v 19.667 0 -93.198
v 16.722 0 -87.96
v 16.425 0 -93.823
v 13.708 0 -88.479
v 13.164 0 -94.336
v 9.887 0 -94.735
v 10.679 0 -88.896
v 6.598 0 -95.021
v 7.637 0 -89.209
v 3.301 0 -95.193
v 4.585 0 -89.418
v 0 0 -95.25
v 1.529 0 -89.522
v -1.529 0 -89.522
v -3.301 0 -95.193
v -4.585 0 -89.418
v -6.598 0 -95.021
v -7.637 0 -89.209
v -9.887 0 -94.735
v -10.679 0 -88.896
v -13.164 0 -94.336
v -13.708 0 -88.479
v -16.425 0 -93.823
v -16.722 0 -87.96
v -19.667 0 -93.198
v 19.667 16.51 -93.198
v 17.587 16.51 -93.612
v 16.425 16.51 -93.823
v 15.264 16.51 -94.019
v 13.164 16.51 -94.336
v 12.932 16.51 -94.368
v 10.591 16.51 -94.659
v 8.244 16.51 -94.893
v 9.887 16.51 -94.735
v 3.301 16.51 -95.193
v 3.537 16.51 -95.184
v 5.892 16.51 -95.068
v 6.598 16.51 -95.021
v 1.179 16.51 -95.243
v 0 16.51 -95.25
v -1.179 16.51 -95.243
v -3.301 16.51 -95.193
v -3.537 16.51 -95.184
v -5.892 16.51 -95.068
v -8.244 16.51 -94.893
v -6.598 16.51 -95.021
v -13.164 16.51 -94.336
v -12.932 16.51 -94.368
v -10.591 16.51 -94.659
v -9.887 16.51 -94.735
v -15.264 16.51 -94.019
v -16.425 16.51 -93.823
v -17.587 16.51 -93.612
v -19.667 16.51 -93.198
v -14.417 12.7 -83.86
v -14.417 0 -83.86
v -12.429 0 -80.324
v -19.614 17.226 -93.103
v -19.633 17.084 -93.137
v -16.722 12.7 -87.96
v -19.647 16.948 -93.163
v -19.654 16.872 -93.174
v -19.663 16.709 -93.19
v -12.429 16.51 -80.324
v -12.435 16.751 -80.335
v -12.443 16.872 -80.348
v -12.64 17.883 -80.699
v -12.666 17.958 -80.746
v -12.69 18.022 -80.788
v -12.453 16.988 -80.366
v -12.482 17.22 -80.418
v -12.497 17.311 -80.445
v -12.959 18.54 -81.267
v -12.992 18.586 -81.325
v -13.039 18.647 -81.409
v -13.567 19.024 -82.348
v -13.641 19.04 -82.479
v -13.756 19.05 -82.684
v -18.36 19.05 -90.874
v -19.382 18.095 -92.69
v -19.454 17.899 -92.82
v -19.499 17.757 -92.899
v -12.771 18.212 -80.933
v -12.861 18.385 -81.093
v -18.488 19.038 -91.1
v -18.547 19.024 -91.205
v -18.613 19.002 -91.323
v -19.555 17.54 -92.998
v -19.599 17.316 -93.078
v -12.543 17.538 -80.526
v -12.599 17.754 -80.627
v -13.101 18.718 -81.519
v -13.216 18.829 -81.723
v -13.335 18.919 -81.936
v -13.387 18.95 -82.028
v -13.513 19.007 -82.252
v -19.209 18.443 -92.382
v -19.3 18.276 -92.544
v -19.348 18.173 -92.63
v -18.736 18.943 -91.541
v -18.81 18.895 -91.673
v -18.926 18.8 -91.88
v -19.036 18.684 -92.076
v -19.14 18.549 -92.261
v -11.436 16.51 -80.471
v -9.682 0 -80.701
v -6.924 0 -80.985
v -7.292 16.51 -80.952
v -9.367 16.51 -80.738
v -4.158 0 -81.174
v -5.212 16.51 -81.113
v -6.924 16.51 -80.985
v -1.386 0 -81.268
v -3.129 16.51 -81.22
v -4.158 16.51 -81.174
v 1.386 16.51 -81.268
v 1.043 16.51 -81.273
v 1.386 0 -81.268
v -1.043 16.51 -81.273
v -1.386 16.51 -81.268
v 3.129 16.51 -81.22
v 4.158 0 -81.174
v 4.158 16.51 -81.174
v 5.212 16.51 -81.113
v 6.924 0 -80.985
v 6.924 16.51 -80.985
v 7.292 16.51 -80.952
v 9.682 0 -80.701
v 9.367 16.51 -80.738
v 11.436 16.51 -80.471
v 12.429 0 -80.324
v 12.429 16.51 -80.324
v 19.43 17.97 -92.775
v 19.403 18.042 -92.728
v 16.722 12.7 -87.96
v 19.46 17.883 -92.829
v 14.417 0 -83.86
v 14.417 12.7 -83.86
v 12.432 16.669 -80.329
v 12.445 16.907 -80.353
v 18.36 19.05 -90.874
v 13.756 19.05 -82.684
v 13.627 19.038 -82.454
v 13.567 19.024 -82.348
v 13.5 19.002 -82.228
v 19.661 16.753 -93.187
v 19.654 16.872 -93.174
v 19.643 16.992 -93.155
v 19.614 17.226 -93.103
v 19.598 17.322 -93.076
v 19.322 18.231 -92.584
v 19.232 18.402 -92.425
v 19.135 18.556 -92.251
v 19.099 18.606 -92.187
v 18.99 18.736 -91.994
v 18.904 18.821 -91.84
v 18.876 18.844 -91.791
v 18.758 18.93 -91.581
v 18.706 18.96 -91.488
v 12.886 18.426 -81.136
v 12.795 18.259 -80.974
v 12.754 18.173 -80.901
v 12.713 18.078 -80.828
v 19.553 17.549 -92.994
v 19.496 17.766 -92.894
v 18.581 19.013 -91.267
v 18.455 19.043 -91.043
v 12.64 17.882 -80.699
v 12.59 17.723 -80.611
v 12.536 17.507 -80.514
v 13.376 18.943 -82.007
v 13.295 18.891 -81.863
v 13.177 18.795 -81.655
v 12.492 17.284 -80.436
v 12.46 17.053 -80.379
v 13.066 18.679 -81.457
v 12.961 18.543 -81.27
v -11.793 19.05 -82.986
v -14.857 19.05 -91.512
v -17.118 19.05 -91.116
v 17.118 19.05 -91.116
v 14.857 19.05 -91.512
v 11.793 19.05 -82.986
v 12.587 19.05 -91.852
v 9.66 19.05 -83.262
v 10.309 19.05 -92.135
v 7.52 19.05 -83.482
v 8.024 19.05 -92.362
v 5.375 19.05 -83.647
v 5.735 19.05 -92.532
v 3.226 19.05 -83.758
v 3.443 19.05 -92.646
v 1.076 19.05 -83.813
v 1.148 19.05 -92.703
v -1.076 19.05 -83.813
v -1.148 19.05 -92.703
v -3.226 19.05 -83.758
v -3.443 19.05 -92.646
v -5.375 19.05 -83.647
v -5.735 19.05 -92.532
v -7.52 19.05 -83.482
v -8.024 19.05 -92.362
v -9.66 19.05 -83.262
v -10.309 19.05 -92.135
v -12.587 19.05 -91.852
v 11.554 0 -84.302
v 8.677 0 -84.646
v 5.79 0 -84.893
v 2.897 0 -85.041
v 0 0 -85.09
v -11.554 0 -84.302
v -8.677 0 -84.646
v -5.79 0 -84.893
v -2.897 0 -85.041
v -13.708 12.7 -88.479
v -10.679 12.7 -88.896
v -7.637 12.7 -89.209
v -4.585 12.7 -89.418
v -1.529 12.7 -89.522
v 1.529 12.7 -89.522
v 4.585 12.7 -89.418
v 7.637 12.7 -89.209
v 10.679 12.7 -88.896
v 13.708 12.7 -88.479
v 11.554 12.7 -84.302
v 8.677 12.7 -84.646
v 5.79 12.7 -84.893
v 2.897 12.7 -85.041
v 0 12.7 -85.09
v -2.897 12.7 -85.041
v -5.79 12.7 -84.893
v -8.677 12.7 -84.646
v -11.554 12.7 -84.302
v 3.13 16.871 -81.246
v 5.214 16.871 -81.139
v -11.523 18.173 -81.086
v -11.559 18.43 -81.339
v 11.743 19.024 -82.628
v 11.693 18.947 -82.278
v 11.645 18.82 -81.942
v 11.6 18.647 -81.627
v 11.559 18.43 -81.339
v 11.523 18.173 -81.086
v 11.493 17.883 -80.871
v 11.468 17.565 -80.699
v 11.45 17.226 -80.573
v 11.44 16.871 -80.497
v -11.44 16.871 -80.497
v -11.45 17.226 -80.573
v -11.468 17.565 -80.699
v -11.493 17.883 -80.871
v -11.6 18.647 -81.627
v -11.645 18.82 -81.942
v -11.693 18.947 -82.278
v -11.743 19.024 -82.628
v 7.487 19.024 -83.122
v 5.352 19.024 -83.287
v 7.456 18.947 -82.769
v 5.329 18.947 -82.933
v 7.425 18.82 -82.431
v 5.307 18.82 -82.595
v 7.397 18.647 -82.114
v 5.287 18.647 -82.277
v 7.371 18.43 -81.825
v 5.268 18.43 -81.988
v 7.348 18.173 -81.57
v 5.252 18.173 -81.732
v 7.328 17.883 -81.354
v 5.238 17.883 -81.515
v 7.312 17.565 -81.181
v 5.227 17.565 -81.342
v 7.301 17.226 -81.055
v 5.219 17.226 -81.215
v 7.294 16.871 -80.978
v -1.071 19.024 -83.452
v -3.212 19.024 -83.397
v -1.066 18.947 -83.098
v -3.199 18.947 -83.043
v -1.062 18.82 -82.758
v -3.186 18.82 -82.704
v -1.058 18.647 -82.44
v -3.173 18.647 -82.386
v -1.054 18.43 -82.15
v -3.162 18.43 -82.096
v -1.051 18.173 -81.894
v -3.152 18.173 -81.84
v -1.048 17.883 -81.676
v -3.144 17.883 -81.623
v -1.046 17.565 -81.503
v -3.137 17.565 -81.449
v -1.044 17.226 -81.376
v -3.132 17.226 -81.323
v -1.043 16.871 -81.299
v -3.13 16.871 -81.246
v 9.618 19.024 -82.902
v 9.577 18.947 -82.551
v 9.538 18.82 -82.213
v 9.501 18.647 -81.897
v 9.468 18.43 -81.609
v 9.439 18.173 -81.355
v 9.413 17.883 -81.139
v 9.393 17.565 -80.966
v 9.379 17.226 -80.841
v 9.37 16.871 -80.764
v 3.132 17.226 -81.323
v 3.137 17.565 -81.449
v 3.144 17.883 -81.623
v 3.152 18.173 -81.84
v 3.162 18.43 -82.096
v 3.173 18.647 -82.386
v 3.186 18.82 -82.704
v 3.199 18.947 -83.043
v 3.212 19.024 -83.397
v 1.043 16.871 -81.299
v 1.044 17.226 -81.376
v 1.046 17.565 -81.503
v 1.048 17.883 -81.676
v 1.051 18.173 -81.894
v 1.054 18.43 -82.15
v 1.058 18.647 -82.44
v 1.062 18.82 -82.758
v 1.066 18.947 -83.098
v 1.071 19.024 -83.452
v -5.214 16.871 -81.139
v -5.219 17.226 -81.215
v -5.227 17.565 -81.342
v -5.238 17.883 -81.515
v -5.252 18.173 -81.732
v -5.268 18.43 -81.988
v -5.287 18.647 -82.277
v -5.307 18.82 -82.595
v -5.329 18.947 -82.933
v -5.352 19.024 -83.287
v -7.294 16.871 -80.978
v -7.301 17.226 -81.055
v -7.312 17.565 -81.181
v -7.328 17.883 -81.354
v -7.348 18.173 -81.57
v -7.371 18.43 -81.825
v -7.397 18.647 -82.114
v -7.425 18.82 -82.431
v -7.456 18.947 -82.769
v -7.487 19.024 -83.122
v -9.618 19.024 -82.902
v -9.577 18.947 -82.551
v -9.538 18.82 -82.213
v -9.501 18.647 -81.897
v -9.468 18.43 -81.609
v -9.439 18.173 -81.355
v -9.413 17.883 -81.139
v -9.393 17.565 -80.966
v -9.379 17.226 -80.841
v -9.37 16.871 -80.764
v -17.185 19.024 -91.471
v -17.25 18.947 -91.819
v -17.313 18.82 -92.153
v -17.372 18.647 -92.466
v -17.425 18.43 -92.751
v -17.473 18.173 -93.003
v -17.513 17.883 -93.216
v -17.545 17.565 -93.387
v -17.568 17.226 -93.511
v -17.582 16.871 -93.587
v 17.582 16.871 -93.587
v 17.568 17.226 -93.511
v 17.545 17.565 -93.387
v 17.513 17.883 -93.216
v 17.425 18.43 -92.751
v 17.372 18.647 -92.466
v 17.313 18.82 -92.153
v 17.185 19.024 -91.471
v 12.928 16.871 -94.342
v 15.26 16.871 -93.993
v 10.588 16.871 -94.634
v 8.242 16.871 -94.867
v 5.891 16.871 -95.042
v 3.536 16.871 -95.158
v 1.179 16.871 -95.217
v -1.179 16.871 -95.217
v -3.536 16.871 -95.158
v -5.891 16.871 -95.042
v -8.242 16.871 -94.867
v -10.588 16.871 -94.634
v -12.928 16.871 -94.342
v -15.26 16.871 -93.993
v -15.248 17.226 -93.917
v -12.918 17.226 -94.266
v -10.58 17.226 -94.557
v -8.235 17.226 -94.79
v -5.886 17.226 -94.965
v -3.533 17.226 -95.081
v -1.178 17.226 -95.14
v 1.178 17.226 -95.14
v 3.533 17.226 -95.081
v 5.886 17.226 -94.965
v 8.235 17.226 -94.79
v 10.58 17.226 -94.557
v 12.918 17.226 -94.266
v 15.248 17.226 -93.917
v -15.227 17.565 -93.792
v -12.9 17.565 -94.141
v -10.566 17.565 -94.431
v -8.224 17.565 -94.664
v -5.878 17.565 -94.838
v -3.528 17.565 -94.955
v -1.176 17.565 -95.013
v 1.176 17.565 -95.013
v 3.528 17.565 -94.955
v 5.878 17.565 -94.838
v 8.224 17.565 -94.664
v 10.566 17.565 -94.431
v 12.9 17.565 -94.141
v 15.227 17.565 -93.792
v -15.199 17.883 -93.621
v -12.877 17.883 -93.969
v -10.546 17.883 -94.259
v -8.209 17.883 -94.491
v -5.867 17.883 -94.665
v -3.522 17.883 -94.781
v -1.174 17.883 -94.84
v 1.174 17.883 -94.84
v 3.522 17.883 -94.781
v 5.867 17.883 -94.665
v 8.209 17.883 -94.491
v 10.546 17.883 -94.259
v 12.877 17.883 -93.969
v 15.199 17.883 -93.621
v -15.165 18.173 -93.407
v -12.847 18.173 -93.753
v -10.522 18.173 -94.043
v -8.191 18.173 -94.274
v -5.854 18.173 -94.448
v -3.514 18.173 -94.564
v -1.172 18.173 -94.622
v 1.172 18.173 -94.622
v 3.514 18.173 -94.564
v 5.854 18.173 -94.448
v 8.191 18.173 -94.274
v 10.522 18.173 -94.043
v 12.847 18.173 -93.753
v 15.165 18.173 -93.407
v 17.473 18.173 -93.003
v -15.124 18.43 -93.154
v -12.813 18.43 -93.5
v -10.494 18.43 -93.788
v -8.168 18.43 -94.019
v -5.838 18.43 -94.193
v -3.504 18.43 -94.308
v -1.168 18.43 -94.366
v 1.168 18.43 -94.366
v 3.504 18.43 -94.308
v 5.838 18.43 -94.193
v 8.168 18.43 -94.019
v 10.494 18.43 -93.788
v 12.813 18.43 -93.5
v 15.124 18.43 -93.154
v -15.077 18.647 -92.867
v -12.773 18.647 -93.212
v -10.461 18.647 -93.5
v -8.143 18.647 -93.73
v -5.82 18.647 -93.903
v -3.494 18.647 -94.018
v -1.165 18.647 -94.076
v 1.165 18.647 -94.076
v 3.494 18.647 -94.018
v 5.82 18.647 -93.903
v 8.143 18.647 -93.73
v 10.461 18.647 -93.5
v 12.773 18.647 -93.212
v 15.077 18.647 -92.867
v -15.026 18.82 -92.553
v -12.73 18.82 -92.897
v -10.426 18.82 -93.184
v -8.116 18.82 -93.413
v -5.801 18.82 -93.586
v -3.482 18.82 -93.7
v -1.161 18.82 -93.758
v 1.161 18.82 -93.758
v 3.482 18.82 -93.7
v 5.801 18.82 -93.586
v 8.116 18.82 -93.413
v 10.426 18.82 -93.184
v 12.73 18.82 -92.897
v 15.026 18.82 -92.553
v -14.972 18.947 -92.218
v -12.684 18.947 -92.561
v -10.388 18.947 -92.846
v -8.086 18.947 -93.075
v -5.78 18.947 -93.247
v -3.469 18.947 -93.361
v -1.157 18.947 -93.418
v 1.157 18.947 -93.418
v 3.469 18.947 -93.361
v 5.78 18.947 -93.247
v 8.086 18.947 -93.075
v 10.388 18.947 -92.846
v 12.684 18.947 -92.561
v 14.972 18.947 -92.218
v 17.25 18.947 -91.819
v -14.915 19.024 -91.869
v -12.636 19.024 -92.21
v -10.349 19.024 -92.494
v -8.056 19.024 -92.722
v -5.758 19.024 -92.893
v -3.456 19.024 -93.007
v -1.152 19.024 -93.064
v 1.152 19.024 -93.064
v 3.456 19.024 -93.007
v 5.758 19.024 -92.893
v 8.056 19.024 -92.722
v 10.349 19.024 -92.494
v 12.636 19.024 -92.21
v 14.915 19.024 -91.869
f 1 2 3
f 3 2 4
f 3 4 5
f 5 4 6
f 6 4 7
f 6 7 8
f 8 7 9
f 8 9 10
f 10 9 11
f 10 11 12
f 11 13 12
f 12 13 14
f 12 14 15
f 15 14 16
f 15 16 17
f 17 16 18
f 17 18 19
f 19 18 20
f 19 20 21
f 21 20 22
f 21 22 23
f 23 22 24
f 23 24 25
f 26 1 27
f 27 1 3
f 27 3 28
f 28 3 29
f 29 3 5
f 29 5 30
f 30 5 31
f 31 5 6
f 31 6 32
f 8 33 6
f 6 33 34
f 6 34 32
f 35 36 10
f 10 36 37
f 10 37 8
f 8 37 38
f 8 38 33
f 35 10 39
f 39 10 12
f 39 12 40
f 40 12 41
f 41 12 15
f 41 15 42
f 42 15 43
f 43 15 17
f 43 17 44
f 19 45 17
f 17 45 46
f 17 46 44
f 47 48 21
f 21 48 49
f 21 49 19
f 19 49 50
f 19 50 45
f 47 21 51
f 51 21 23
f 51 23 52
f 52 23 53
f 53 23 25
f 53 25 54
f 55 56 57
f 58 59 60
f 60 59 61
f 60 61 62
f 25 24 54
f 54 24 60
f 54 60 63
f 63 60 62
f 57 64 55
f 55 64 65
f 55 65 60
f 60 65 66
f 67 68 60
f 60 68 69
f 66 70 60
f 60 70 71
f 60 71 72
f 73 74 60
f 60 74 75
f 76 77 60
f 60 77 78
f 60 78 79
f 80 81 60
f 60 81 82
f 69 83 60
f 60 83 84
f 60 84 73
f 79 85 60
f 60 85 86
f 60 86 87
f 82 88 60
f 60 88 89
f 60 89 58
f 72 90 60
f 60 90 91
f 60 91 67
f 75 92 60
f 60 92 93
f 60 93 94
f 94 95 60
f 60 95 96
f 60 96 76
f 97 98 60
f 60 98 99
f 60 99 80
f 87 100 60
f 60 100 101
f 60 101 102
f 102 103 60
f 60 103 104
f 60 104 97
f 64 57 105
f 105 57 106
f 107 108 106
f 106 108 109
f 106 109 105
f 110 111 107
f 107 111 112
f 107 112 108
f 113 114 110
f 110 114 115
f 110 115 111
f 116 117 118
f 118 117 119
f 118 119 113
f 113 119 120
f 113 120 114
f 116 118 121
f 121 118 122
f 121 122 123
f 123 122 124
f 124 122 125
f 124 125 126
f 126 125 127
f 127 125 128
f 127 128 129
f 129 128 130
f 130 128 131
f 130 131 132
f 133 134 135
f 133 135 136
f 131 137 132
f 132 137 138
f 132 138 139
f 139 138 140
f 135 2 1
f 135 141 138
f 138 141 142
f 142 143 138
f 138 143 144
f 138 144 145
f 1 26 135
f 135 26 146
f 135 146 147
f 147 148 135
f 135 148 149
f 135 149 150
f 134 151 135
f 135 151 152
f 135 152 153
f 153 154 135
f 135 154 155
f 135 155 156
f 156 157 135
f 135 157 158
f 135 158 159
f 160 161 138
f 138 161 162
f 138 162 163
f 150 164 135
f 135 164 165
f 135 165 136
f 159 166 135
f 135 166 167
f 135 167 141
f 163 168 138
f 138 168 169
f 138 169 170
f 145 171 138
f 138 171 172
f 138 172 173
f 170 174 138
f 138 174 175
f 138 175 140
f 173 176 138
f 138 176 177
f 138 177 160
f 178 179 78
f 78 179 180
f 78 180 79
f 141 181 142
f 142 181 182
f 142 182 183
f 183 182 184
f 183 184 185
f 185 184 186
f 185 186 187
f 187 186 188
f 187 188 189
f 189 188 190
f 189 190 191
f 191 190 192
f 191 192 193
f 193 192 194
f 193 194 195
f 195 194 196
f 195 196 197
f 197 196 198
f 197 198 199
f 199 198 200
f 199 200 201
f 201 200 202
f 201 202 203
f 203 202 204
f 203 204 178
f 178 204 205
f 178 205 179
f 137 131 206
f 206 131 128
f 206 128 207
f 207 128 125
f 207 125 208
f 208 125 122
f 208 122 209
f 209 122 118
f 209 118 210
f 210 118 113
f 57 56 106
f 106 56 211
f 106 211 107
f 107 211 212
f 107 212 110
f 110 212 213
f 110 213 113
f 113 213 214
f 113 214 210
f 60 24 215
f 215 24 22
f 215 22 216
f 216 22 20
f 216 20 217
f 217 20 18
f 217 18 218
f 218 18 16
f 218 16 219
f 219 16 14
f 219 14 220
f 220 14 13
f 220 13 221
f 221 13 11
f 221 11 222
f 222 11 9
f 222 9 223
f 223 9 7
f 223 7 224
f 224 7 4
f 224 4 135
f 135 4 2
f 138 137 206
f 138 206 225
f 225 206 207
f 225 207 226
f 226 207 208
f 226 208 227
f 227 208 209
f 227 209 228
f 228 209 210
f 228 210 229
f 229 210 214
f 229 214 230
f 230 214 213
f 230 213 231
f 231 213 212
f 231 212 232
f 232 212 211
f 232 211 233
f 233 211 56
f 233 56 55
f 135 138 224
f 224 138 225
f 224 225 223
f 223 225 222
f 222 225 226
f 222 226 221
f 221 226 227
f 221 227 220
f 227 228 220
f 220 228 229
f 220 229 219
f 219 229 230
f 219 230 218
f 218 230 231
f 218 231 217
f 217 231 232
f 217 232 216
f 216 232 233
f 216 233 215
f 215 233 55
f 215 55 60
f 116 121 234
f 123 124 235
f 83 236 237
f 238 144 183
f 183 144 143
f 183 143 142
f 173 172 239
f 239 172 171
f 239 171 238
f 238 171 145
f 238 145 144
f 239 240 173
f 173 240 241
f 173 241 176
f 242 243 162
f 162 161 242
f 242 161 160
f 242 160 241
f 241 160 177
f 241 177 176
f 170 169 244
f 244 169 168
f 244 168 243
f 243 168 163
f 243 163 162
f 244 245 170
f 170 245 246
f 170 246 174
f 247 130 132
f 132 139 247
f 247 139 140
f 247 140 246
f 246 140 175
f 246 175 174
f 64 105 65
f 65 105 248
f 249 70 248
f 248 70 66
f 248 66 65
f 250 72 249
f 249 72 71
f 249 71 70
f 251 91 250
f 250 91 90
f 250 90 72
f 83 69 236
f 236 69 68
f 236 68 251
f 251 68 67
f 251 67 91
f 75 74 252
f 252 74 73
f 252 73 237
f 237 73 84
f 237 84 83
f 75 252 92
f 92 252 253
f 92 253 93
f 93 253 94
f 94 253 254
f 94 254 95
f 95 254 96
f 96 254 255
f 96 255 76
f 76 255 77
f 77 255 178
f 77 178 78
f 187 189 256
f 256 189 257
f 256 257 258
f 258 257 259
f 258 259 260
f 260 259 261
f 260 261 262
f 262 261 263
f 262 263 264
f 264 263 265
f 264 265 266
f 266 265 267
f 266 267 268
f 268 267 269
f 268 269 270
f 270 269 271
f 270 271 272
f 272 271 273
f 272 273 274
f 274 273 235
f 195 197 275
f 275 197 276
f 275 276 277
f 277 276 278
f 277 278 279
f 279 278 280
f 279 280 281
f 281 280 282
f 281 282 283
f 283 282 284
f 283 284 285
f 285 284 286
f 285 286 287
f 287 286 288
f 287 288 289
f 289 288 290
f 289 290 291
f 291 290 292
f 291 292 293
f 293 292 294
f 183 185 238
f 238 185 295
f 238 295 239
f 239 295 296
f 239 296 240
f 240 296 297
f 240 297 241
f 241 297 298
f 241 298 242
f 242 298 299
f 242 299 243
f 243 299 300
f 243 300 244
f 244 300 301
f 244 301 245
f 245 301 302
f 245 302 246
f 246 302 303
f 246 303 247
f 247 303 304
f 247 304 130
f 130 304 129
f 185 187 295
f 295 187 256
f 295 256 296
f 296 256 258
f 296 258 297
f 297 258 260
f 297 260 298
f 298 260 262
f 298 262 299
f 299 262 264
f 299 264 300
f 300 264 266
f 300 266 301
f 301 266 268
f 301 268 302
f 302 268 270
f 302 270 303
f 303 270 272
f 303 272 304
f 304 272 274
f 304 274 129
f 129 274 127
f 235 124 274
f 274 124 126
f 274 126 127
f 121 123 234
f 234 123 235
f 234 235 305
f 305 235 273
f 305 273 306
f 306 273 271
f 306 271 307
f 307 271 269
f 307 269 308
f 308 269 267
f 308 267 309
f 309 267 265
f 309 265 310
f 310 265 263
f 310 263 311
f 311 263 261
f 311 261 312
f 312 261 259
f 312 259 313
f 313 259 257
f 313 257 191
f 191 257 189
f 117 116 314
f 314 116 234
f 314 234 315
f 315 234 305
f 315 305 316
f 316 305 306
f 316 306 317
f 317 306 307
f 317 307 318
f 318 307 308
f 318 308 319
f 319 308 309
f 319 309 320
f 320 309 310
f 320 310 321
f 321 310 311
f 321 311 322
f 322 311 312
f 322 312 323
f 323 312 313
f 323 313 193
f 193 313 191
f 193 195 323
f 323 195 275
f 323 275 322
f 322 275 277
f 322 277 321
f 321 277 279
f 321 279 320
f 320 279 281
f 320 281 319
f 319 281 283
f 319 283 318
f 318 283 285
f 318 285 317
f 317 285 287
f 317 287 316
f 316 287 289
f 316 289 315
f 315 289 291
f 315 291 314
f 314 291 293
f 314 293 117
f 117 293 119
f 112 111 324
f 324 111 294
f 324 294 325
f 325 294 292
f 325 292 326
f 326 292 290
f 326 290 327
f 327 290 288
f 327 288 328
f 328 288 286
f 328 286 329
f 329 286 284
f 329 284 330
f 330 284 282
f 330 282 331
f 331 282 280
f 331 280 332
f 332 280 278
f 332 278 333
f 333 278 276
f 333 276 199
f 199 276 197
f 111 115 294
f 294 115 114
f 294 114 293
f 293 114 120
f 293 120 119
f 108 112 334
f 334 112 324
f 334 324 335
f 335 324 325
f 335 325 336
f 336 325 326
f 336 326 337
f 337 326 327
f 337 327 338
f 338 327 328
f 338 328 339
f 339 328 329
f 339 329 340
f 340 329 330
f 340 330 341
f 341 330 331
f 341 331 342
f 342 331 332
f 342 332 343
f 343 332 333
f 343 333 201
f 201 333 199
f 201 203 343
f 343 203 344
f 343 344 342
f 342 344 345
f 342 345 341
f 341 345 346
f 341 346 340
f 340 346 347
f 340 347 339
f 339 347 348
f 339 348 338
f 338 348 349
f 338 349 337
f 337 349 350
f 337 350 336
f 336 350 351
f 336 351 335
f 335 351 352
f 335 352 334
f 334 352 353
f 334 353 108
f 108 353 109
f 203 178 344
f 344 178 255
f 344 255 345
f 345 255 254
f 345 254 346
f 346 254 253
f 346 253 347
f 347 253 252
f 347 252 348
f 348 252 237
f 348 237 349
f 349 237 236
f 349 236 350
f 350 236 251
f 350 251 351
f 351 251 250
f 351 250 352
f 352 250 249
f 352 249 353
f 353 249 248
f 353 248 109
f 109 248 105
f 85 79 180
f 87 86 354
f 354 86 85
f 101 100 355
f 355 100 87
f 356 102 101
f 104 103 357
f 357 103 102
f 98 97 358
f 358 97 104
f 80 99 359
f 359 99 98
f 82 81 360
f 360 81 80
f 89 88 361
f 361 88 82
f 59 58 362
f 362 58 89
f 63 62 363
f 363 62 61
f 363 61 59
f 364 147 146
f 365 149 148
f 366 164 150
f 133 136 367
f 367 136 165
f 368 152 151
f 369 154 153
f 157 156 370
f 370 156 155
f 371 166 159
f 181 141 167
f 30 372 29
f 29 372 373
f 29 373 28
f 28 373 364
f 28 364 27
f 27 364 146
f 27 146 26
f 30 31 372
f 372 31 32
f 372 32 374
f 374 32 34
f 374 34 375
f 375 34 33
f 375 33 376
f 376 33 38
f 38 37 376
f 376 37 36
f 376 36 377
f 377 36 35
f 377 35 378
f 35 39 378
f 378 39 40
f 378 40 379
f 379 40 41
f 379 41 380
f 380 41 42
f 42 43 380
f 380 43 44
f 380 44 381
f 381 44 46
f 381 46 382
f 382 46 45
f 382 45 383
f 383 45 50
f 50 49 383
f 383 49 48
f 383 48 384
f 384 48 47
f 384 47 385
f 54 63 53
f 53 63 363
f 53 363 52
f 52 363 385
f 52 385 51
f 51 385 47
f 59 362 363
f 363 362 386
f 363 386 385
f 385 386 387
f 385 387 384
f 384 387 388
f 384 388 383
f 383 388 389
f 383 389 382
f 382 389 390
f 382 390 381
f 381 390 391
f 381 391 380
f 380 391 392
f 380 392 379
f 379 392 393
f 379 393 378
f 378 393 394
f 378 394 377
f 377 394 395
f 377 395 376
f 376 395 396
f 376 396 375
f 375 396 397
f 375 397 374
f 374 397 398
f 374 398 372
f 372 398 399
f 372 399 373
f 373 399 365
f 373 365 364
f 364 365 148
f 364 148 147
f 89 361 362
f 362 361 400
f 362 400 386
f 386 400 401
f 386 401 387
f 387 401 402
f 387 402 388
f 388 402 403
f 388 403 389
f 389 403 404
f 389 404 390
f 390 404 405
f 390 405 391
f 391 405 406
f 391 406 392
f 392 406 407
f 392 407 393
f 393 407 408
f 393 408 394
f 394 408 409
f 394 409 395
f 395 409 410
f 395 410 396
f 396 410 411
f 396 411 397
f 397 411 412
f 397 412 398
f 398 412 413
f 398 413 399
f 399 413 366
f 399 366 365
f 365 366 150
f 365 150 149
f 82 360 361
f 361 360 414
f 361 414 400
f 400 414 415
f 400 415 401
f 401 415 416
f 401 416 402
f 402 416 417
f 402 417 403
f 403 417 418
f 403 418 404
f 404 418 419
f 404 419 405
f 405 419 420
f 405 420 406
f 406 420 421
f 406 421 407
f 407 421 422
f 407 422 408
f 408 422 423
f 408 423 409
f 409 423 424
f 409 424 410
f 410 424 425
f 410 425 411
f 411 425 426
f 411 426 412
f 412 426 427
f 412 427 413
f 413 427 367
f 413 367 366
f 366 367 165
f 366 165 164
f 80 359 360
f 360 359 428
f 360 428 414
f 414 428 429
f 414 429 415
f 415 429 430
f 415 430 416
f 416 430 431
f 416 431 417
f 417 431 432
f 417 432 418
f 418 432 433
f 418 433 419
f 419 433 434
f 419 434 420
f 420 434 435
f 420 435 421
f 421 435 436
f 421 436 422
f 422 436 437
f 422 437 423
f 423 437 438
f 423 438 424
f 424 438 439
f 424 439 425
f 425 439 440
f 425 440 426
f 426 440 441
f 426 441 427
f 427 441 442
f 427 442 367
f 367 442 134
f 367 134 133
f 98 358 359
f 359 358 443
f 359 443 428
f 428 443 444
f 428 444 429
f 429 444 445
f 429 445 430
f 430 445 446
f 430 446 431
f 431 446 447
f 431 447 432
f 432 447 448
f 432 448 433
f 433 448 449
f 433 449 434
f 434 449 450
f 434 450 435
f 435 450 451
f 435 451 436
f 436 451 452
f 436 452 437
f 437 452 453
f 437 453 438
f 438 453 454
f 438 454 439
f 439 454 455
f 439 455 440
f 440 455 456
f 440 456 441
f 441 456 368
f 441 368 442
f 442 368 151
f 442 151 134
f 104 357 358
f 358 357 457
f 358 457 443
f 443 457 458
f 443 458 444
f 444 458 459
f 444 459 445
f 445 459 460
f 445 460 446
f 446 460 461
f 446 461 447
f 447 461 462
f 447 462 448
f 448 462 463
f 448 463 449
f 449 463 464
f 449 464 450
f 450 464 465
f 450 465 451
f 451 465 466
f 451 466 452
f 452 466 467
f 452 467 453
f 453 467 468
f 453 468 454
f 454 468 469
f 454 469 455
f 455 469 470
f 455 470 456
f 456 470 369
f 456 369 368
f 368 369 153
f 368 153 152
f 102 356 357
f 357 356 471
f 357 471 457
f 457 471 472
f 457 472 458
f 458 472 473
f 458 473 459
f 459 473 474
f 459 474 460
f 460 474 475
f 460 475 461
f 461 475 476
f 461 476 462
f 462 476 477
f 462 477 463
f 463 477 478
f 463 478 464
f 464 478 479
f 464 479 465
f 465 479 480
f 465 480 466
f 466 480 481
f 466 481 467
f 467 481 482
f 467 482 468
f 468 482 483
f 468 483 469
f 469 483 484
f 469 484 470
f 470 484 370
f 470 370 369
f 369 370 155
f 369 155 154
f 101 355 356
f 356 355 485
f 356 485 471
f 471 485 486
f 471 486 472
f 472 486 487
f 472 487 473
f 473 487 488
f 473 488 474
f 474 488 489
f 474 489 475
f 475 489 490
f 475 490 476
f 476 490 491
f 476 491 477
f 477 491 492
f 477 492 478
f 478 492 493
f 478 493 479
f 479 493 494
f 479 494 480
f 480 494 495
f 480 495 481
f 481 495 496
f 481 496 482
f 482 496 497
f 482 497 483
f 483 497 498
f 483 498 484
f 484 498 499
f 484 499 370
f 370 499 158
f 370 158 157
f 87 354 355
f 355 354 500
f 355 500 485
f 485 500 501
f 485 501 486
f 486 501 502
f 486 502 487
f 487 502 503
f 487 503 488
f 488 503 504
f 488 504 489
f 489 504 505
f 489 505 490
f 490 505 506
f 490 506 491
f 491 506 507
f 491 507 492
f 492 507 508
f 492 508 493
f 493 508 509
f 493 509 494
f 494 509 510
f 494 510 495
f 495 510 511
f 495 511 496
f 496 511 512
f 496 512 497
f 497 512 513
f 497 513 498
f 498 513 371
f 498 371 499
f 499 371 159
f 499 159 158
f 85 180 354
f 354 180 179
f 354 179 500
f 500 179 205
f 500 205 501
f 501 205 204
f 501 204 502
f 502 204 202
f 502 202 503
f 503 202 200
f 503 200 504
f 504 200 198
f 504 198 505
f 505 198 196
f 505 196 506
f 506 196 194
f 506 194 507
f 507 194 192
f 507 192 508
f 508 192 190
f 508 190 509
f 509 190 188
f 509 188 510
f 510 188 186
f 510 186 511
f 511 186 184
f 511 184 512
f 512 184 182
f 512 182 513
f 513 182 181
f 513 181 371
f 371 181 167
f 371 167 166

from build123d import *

# Parameters (mm, degrees)
BOSS_EXTRUDE1_DEPTH = 19.05
CUT_EXTRUDE1_DEPTH  = 12.7
FILLET1_R           = 2.54


with BuildPart() as part:
    # Sketch1 → Boss-Extrude1 (new body)
    with BuildSketch(Plane(origin=(0, 0, 0), x_dir=(1, 0, 0), z_dir=(0, 1, 0))):
        with BuildLine():
            Line((12.429156122, 80.324059149), (19.666857156, 93.197517293))
            ThreePointArc((19.666857156, 93.197517293), (0, 95.25), (-19.666857156, 93.197517293))
            Line((-19.666857156, 93.197517293), (-12.429156122, 80.324059149))
            ThreePointArc((-12.429156122, 80.324059149), (0, 81.28), (12.429156122, 80.324059149))
        make_face()
    extrude(amount=BOSS_EXTRUDE1_DEPTH)

    # Sketch3 → Cut-Extrude1 (cut)
    with BuildSketch(Plane.XZ):
        with BuildLine():
            Line((-14.416990913, -83.859754788), (-16.722000277, -87.959598292))
            ThreePointArc((-16.722000277, -87.959598292), (0, -89.535), (16.722000277, -87.959598292))
            Line((16.722000277, -87.959598292), (14.416990913, -83.859754788))
            ThreePointArc((14.416990913, -83.859754788), (0, -85.09), (-14.416990913, -83.859754788))
        make_face()
    extrude(amount=-CUT_EXTRUDE1_DEPTH, mode=Mode.SUBTRACT)

    # Fillet1
    fillet1_edges = [part.edges().sort_by_distance(p)[0] for p in [
        (0, 19.05, -81.28),
        (0, 19.05, -95.25),
    ]]
    fillet(fillet1_edges, radius=FILLET1_R)


solid = part.part
